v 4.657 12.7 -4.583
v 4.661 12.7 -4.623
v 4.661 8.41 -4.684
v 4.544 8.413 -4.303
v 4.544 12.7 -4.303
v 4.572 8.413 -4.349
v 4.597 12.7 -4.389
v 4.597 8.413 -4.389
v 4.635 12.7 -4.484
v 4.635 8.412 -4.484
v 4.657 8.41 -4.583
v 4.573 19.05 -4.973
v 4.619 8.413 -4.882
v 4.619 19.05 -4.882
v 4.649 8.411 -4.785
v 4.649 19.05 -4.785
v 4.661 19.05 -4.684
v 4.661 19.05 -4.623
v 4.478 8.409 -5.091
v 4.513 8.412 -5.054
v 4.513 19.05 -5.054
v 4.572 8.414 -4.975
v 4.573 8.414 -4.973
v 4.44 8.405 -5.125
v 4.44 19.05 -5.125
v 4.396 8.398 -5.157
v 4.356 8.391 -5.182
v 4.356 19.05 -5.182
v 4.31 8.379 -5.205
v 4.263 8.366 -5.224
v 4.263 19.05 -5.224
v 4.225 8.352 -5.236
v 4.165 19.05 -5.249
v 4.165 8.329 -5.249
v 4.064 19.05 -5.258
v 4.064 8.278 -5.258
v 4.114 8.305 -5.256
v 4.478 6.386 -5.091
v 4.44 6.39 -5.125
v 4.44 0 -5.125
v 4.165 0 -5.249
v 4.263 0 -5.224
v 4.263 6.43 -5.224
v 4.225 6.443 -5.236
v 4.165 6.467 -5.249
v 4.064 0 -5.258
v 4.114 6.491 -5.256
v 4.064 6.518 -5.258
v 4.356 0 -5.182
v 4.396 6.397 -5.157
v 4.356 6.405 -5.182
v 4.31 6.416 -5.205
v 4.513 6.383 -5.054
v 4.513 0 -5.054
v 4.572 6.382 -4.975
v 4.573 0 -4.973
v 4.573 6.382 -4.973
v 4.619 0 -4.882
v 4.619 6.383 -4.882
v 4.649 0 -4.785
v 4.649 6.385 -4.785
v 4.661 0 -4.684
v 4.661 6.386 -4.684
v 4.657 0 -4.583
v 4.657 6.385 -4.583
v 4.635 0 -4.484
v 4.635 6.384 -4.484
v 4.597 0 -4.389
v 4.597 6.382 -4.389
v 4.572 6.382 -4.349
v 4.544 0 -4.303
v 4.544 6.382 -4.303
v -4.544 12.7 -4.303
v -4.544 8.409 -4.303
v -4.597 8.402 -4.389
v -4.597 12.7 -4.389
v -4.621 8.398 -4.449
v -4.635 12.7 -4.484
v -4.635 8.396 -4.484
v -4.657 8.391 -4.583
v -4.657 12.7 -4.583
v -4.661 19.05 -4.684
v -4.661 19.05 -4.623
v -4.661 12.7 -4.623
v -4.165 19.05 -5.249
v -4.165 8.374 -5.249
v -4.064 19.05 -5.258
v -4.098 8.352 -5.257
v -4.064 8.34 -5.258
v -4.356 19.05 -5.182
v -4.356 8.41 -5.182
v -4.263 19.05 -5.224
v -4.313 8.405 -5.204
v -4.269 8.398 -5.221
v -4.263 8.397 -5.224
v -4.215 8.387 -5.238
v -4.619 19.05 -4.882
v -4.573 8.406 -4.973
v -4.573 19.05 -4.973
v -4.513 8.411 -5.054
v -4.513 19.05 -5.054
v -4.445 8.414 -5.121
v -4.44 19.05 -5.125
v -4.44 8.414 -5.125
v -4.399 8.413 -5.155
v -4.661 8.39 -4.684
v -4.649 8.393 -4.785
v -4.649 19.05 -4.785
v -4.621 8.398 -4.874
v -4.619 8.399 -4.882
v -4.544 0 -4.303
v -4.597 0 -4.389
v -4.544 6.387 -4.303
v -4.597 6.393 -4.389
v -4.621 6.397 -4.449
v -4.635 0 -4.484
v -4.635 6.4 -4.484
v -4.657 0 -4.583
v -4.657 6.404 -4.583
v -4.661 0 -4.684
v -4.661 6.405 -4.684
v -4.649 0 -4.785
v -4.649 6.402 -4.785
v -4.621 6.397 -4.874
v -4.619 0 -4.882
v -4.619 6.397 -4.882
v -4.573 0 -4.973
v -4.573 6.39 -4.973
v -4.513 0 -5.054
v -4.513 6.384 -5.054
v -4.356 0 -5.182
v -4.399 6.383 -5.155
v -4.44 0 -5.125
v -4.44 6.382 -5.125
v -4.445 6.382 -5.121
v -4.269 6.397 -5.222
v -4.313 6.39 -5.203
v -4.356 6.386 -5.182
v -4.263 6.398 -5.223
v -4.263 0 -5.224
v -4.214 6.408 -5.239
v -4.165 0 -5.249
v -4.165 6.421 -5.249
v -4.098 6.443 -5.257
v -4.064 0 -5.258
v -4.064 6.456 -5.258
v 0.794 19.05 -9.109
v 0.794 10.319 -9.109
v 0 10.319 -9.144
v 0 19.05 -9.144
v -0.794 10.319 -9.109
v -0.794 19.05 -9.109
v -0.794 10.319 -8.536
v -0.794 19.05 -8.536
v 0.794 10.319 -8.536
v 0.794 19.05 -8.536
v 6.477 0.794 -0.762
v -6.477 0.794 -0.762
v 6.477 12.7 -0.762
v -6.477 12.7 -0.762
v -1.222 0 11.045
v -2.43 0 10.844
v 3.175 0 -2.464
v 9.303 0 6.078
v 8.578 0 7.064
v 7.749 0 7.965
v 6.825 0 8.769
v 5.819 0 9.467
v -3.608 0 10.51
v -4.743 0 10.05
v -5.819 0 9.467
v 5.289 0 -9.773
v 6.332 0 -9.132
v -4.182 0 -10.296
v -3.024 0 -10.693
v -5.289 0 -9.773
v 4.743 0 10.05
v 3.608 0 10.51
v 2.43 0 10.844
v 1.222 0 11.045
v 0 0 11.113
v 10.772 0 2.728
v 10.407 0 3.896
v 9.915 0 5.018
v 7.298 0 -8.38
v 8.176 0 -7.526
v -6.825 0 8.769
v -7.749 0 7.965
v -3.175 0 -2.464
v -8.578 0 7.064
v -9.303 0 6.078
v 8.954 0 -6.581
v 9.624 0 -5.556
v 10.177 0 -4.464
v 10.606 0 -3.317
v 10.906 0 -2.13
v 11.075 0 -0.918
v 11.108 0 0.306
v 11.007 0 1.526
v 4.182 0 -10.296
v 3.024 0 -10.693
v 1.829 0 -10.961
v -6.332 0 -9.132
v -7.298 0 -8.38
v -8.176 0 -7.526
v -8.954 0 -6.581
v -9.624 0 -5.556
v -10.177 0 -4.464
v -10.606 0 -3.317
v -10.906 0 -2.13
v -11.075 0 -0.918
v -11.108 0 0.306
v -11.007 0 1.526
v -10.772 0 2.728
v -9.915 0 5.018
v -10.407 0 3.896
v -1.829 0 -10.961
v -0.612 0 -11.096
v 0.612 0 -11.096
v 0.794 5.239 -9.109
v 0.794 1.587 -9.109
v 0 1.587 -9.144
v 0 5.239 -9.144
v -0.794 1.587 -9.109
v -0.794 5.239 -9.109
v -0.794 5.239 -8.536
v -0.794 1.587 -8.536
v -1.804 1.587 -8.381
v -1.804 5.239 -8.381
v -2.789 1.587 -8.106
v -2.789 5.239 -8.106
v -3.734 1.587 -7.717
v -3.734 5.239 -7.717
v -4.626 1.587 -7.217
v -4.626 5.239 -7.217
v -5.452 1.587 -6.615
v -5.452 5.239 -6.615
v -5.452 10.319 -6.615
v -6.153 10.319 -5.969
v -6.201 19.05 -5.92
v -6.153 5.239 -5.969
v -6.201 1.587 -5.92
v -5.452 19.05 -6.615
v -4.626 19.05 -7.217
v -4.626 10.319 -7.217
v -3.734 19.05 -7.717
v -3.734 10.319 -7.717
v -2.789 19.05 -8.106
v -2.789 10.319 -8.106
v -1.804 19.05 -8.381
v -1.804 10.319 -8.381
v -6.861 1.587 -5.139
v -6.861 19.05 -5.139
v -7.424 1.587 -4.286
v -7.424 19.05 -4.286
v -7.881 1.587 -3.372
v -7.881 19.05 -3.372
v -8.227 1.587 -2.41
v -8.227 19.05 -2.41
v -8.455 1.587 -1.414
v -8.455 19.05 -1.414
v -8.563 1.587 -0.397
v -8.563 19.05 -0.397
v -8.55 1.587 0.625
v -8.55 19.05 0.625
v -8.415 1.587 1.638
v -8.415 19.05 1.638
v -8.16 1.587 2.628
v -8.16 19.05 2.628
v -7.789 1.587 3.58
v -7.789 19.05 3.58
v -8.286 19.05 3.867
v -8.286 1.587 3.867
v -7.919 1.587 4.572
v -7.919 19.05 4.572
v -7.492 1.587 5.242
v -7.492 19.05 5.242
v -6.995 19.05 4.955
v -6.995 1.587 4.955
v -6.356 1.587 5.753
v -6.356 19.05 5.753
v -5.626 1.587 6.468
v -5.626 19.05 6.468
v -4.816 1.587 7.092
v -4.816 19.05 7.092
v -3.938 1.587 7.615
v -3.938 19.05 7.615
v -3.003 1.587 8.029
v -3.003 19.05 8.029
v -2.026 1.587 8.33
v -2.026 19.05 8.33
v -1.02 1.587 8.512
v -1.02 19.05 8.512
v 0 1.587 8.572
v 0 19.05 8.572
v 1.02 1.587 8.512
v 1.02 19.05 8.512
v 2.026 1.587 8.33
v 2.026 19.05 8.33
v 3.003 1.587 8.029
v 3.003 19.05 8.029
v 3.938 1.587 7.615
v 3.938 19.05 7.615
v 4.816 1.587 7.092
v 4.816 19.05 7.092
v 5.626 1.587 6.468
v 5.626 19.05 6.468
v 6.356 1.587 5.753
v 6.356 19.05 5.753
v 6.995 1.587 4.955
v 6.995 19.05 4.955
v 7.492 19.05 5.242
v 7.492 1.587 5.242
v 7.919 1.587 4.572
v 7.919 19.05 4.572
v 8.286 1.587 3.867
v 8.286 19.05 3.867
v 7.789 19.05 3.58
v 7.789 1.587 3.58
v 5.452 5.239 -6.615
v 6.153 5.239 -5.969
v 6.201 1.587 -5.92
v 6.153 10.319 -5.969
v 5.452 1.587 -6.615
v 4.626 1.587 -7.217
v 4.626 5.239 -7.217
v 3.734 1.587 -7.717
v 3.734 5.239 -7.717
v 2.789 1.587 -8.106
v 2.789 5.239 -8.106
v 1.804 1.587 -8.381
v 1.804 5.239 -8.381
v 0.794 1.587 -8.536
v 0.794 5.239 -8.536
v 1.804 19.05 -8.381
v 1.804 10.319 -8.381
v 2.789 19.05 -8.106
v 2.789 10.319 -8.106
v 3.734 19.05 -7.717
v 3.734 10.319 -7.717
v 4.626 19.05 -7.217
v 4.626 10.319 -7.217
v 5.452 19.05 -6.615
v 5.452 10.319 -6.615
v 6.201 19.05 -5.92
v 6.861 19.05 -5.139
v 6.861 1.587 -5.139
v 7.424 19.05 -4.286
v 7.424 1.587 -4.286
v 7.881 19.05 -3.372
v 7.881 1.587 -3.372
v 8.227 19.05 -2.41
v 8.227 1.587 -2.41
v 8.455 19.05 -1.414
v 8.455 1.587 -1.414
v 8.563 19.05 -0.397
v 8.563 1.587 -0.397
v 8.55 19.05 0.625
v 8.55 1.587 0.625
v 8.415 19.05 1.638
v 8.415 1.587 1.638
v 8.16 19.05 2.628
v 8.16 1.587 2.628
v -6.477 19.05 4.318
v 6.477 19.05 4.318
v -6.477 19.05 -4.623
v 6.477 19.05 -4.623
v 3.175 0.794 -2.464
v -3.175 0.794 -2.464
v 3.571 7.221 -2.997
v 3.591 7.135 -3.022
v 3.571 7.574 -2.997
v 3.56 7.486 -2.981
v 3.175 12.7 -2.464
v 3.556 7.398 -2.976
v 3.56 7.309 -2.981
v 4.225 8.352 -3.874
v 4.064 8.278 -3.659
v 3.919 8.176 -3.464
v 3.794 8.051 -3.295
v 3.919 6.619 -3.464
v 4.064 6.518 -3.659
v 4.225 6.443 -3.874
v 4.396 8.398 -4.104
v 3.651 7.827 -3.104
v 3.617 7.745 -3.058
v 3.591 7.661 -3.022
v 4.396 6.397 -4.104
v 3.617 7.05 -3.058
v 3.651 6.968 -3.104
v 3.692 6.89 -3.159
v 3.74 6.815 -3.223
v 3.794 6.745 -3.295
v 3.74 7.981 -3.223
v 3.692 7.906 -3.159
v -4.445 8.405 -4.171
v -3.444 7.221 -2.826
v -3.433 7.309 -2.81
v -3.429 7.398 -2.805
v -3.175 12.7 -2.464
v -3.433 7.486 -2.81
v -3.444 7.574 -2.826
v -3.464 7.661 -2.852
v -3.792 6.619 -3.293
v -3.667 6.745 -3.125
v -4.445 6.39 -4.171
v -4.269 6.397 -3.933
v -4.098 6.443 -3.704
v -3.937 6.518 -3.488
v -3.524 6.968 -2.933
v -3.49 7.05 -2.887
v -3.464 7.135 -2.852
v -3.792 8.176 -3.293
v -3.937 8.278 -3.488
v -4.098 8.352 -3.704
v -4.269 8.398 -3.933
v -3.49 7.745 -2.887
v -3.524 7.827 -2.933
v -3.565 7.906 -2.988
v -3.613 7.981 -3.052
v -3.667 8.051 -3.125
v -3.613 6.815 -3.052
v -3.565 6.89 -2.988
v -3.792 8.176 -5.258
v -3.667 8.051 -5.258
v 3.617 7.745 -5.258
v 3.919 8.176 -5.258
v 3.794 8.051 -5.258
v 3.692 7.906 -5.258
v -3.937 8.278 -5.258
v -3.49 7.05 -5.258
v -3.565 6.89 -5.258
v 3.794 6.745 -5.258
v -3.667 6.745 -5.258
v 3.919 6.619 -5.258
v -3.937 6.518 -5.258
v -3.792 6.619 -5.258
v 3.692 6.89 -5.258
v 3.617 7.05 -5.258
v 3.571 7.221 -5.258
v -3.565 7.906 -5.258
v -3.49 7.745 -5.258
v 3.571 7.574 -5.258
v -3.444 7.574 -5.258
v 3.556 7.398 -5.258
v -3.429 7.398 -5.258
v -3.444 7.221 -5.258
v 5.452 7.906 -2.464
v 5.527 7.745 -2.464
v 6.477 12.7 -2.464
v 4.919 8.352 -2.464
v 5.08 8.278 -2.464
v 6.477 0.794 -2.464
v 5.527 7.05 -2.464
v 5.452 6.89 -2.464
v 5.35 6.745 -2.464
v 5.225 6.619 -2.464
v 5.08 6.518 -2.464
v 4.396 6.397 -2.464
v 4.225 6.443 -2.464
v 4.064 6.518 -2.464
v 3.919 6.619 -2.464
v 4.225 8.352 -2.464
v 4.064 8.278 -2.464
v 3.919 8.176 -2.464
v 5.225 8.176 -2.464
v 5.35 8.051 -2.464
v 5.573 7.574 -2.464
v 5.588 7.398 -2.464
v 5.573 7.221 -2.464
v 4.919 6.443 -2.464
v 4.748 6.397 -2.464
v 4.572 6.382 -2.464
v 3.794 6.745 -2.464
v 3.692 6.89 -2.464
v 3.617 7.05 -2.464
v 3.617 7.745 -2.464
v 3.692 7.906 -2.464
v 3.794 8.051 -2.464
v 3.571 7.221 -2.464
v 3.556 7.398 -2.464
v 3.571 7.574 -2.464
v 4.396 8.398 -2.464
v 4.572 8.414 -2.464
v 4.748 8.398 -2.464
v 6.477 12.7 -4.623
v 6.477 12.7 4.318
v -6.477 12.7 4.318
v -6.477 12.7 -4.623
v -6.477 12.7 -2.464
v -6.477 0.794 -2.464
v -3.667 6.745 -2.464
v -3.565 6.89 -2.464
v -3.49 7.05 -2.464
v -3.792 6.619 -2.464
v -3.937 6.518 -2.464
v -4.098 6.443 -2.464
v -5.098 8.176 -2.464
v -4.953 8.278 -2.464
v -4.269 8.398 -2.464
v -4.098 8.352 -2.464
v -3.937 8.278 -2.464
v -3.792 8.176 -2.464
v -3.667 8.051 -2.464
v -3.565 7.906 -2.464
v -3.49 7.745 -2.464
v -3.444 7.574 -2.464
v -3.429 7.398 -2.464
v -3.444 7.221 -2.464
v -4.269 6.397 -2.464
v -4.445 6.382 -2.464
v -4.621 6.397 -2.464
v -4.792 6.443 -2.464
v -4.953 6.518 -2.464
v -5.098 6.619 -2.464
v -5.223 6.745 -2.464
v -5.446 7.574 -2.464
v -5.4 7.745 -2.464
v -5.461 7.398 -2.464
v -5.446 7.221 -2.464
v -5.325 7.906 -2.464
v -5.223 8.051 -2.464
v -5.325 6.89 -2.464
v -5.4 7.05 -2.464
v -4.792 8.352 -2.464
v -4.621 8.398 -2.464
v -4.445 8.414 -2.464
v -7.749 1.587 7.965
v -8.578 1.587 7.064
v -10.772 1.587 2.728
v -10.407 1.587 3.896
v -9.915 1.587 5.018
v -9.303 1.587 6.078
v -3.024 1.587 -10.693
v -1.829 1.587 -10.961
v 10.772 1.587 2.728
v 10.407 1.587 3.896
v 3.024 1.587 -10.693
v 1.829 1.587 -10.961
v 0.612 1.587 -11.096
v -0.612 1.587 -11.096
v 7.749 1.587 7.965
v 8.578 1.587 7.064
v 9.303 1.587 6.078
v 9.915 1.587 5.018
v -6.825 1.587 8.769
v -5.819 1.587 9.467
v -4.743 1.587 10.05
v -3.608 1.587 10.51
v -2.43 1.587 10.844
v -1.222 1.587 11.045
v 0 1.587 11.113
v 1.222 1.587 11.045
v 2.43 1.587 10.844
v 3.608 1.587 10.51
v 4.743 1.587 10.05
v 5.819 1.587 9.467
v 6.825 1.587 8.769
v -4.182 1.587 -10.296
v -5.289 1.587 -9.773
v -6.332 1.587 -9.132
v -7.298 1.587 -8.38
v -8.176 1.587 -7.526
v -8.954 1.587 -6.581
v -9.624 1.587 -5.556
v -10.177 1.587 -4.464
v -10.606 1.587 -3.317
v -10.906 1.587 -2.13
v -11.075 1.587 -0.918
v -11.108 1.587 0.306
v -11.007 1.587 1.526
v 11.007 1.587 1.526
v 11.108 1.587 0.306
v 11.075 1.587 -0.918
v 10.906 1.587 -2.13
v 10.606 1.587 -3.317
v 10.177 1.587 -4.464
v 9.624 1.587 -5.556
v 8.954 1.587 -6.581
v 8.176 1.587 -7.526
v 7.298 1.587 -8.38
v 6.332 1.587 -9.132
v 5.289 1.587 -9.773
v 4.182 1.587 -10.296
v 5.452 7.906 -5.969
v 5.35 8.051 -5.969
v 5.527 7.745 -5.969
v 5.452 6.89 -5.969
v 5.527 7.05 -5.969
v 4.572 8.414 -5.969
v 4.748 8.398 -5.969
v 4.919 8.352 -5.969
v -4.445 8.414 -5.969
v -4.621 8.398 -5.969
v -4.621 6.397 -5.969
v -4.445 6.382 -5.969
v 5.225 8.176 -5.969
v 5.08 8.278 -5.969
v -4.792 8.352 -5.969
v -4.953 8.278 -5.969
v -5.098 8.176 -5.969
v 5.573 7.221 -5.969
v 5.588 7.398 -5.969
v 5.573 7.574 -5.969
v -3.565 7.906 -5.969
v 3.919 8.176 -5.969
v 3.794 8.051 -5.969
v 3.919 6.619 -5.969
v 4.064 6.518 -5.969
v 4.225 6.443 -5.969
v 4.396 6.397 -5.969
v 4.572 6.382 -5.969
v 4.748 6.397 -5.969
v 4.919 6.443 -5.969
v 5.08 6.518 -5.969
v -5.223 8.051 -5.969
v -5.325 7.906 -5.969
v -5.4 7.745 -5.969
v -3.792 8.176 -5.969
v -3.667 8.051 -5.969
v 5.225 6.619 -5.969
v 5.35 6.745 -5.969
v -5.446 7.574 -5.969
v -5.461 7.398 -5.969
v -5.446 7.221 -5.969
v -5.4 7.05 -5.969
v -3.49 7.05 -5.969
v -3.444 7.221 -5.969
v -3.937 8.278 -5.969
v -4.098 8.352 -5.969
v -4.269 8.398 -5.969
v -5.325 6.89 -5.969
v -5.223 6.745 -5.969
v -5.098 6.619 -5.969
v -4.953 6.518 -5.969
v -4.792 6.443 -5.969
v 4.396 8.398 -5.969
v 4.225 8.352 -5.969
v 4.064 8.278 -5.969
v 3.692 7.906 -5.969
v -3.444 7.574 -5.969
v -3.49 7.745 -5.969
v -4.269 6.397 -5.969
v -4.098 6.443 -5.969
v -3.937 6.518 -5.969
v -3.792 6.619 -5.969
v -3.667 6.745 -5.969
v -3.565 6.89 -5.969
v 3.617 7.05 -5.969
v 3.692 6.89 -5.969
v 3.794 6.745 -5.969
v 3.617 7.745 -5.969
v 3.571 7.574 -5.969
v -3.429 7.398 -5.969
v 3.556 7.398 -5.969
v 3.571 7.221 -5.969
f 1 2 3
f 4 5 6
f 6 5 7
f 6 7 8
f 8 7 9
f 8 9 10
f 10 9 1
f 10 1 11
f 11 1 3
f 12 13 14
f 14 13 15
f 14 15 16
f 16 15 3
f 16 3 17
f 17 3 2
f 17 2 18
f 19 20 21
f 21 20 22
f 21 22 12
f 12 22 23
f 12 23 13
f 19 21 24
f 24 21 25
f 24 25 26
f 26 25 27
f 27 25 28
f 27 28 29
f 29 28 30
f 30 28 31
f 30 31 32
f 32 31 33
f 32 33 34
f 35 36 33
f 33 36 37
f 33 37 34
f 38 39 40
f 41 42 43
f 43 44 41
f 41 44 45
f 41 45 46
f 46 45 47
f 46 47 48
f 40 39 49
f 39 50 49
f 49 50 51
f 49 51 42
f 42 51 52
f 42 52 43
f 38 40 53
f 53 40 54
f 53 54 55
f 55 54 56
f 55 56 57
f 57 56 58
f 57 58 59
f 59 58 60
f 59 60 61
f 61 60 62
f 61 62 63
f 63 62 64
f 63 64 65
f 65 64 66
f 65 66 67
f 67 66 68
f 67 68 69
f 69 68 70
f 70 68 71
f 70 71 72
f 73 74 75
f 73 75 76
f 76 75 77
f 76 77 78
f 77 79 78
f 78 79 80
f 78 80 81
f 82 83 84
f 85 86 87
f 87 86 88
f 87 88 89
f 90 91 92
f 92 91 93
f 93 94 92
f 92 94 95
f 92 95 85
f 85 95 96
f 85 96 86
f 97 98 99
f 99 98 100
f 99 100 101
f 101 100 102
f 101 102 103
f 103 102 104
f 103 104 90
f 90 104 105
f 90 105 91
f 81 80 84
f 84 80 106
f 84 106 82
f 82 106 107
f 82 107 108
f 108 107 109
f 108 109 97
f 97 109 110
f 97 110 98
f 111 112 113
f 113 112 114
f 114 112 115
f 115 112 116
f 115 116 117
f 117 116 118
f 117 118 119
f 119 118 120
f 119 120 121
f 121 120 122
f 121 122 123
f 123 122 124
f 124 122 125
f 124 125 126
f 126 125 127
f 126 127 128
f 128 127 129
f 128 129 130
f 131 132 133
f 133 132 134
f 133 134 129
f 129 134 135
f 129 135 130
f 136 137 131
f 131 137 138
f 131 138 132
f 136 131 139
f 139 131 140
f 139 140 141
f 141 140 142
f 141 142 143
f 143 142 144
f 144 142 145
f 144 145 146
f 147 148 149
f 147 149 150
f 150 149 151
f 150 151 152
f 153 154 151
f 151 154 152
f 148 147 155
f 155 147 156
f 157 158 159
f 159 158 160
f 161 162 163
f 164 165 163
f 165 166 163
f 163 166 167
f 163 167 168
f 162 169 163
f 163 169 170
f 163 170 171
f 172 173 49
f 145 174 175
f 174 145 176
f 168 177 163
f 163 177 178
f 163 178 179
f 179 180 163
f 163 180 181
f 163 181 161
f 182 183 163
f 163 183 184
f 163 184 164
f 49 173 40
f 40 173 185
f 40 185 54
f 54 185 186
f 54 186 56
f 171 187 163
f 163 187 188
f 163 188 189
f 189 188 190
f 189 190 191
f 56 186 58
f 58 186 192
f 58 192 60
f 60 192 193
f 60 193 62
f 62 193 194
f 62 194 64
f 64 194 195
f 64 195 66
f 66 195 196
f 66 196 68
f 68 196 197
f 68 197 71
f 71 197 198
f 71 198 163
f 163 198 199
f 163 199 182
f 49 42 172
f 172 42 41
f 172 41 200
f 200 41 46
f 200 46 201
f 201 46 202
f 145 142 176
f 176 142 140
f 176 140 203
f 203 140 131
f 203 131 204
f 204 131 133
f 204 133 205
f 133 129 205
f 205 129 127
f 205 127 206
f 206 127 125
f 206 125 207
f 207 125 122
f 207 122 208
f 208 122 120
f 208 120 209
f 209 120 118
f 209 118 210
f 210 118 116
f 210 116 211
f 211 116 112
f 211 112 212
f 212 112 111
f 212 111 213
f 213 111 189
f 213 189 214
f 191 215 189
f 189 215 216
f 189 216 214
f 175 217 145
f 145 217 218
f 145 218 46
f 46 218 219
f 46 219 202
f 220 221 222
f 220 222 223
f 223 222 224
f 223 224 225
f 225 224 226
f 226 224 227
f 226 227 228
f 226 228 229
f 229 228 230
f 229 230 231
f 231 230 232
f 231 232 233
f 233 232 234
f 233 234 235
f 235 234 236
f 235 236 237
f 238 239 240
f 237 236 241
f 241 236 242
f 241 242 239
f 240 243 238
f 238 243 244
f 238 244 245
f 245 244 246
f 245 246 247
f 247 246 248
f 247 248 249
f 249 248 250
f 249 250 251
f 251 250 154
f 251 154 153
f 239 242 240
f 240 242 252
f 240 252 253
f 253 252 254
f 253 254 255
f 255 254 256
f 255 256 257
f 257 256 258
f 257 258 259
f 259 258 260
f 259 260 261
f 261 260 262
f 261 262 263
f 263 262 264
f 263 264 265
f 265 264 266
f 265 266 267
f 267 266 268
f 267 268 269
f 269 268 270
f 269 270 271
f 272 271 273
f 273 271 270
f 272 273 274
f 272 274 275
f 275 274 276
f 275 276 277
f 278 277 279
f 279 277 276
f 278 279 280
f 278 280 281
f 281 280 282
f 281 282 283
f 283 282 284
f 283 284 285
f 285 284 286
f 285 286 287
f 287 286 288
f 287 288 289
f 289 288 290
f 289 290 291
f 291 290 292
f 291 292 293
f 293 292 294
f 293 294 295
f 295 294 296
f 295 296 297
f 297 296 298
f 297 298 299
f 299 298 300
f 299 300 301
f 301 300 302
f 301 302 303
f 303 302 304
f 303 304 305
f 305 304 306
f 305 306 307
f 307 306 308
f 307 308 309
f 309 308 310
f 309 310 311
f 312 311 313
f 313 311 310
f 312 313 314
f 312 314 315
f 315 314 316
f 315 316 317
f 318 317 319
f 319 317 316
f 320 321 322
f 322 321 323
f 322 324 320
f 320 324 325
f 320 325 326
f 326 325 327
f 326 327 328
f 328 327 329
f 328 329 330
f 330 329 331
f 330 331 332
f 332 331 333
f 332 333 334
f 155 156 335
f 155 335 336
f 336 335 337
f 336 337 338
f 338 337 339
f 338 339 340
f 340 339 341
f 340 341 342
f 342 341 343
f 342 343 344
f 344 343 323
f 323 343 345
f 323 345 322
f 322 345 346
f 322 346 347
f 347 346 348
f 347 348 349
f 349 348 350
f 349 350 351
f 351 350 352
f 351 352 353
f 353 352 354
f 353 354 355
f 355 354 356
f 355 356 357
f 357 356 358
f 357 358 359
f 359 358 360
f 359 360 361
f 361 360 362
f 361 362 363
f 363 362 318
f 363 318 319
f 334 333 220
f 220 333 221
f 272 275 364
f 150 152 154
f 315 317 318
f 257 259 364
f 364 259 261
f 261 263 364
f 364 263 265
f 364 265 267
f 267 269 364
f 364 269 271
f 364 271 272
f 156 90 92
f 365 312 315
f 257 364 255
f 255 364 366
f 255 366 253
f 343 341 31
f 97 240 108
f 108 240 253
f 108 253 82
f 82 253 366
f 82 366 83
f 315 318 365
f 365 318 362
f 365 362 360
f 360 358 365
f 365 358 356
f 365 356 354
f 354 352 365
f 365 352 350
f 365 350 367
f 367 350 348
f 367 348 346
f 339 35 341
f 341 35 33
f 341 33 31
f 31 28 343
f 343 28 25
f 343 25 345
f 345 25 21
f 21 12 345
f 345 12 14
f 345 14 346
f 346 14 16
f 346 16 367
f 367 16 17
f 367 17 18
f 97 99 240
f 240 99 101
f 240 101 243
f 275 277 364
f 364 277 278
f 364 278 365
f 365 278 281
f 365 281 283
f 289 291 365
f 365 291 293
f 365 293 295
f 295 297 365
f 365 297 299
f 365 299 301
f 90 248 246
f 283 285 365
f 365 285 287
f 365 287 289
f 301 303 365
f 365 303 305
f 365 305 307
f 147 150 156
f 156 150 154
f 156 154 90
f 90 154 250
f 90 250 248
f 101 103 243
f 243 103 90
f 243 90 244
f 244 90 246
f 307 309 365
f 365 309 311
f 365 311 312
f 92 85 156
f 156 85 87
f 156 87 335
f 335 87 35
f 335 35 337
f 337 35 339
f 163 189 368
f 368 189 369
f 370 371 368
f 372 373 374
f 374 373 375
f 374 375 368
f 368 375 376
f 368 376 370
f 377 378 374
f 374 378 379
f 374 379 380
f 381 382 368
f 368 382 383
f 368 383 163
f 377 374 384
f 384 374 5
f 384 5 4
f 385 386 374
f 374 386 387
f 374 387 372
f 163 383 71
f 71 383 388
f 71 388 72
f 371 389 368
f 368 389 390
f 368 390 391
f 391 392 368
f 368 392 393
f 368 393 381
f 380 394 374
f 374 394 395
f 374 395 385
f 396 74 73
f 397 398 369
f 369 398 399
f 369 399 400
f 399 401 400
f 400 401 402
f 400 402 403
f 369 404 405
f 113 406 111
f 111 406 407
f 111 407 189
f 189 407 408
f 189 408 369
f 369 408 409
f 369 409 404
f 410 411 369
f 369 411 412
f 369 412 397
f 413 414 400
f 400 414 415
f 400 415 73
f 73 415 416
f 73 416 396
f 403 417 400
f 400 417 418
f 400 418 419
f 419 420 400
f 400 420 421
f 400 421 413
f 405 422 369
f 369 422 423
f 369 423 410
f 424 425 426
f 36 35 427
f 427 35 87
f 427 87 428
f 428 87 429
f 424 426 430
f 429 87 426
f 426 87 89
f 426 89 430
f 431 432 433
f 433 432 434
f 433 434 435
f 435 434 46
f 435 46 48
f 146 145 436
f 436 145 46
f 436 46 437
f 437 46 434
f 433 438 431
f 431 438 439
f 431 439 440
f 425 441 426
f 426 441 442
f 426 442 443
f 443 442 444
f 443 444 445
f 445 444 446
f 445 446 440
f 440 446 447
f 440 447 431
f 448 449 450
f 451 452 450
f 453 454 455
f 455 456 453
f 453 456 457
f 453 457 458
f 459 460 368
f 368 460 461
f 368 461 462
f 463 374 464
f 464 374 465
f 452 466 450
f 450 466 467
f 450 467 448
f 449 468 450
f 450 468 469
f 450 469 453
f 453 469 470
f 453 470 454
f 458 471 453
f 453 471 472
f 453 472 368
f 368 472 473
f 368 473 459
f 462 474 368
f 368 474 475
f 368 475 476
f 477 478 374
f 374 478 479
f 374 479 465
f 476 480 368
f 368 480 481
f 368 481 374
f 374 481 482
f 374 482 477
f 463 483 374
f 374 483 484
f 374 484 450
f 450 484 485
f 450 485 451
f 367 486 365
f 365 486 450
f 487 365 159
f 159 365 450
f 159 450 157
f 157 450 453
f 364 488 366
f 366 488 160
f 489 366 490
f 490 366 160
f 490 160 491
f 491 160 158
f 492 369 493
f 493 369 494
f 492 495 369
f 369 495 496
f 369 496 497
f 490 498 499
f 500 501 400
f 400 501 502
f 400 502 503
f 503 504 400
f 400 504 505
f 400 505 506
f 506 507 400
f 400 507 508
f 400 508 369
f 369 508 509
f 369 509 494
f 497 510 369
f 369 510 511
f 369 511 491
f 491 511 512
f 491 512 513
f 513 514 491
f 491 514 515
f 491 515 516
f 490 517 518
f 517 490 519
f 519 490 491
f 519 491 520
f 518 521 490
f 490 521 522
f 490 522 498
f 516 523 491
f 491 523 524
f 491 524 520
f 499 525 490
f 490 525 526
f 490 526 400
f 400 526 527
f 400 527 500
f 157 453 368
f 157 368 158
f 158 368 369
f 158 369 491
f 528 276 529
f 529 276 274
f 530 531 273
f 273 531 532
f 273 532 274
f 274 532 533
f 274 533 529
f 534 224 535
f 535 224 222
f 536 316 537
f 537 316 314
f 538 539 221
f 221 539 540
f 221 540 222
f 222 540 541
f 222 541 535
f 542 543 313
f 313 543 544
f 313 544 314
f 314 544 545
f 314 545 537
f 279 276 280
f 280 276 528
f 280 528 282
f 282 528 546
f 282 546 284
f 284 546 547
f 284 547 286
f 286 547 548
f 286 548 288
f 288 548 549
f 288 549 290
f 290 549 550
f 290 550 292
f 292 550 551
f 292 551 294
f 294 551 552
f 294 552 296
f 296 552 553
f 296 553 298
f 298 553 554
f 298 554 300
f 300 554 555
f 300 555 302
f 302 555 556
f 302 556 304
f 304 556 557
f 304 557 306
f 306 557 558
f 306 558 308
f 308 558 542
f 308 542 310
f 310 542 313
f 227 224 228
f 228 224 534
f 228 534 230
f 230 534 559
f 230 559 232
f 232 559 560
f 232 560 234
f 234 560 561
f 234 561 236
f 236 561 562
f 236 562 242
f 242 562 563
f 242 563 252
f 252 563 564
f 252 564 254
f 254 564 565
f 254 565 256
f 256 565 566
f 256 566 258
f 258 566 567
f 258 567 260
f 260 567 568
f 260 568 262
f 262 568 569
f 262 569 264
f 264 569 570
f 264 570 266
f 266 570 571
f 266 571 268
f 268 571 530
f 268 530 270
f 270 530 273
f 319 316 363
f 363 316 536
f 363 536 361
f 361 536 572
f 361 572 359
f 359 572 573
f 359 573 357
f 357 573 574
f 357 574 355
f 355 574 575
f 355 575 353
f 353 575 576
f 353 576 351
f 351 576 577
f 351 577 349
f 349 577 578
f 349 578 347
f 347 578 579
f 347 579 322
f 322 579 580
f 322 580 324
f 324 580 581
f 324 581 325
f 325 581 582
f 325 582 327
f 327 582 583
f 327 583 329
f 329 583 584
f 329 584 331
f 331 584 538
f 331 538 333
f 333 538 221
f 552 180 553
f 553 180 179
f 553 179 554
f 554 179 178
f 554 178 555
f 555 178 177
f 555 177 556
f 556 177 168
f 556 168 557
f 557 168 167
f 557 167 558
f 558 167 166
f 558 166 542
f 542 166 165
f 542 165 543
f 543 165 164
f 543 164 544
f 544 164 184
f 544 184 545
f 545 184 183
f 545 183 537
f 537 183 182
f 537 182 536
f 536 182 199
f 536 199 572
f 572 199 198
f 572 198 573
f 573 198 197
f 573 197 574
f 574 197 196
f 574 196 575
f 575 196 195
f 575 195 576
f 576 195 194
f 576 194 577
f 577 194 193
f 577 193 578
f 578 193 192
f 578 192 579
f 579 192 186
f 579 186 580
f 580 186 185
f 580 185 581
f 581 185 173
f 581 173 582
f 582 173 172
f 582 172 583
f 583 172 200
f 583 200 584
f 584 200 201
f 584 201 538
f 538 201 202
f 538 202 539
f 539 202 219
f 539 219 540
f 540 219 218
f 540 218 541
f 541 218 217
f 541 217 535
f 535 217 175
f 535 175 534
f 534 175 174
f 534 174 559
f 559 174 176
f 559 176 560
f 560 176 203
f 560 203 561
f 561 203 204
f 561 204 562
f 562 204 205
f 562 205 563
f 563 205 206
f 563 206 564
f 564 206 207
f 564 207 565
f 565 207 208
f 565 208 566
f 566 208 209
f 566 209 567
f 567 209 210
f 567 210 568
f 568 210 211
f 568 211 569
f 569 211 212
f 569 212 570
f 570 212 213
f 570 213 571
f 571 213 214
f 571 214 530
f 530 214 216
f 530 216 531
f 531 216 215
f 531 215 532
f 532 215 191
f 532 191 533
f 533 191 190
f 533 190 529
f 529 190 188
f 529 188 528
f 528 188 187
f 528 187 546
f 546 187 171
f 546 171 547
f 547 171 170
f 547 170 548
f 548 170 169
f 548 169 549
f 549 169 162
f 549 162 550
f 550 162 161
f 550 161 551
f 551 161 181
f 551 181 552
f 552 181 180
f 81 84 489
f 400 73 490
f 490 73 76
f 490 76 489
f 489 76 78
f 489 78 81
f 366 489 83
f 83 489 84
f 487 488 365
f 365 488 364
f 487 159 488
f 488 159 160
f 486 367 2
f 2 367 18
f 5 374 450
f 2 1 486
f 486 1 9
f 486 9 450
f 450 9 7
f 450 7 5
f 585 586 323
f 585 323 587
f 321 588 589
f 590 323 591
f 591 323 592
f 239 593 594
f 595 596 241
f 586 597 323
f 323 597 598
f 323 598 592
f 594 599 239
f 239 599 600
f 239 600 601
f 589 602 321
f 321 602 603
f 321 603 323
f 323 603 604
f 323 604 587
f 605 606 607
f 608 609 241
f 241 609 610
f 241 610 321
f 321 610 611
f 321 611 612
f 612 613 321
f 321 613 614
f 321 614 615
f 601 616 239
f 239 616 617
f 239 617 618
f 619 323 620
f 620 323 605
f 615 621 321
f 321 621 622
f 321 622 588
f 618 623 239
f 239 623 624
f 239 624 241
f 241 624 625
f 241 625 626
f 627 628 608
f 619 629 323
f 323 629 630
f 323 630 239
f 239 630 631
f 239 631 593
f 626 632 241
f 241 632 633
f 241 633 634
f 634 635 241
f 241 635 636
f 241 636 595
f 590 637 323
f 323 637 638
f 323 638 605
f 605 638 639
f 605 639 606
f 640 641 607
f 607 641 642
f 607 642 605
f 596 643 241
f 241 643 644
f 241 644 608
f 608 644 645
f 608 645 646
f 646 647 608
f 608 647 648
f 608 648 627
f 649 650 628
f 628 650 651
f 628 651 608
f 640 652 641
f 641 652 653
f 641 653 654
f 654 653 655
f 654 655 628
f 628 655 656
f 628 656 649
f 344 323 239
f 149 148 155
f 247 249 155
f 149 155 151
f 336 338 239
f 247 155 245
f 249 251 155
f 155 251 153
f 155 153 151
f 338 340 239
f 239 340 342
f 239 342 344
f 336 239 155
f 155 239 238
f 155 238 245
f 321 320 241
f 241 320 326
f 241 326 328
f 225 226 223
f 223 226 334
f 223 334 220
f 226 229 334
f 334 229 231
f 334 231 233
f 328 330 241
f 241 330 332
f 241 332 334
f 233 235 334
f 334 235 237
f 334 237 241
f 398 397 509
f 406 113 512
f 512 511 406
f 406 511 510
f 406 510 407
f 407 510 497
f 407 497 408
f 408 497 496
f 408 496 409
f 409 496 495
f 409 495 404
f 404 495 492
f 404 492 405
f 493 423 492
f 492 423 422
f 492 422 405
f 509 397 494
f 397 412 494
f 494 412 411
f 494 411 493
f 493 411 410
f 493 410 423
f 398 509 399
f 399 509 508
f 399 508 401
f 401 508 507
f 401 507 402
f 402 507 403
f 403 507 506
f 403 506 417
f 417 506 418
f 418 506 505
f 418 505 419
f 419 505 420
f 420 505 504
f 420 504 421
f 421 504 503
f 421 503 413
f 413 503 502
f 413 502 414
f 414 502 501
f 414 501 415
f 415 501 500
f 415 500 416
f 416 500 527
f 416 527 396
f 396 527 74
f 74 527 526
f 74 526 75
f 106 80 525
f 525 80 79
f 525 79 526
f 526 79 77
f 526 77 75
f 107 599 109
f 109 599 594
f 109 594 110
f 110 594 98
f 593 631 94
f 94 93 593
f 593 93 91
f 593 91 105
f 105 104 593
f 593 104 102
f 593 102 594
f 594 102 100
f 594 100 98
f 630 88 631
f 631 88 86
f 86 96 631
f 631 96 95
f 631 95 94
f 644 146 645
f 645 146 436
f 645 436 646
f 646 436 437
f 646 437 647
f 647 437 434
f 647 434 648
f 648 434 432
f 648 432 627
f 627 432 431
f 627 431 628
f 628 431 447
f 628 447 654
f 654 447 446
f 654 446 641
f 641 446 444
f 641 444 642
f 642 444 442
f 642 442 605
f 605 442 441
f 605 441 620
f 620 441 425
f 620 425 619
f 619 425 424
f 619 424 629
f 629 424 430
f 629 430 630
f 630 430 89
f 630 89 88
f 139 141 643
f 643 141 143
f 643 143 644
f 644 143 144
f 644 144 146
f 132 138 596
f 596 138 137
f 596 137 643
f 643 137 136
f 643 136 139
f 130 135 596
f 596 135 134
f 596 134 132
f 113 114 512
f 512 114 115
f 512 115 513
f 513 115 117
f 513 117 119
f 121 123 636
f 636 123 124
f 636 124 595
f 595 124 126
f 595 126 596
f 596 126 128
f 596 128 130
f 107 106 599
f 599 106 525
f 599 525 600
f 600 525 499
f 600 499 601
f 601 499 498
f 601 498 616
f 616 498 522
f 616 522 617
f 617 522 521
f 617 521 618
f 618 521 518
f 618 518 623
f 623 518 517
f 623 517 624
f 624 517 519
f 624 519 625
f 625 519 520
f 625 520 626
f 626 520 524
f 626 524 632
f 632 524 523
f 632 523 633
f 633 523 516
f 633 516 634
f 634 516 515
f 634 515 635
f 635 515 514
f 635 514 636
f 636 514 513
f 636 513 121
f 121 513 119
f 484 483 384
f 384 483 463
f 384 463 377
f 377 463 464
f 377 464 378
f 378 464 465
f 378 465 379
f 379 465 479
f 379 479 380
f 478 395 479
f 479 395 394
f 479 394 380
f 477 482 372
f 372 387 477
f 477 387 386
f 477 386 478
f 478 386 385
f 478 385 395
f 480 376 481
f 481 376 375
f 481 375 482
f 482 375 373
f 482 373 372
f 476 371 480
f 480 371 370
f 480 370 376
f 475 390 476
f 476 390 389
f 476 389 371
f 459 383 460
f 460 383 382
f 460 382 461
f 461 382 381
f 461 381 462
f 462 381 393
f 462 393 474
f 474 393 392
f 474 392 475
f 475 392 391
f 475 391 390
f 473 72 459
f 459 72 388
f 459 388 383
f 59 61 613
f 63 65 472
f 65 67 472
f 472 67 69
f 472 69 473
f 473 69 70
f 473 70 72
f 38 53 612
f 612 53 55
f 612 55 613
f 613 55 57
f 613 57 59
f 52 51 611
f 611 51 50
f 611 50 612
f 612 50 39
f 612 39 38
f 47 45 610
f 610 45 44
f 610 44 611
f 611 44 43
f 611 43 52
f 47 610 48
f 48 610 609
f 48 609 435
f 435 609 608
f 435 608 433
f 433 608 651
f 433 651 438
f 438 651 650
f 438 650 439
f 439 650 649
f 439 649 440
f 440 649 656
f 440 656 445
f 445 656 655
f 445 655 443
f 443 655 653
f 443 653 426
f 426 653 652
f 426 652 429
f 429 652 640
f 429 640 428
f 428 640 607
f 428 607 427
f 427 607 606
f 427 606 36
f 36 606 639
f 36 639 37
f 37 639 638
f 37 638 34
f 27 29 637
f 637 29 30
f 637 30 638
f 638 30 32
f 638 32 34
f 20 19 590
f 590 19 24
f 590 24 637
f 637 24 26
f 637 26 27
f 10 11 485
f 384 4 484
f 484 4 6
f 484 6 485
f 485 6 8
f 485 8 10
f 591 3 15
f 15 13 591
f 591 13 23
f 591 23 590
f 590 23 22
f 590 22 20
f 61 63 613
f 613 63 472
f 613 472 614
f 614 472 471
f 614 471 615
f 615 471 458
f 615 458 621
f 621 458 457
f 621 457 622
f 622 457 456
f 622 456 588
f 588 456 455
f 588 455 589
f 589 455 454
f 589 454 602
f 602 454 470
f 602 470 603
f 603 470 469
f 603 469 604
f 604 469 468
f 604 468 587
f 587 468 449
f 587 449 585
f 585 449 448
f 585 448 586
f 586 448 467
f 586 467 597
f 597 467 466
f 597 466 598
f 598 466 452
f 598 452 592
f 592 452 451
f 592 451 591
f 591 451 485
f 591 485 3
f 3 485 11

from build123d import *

# Parameters (mm, degrees)
BOSS_EXTRUDE1_DEPTH     = 19.05
CUT_EXTRUDE1_DEPTH      = 23.803574111
CUT_EXTRUDE2_DEPTH      = 18.25625
SKETCH6_W               = 0.608326788
SKETCH6_H               = 1.5875
SKETCH8_W               = 2.576826788
SKETCH8_H               = 1.5875
SKETCH9_W               = 12.954
SKETCH9_H               = 5.08
SKETCH9_H_2             = 2.159
CUT_EXTRUDE3_DEPTH      = 6.35
CUT_EXTRUDE5_DEPTH      = 25.695704333
CUT_EXTRUDE5_DEPTH_BACK = 25.695704333
SKETCH11_W              = 3.175
SKETCH11_H              = 5.08
SKETCH10_R              = 1.016
CUT_EXTRUDE6_DEPTH      = 26.047832371


with BuildPart() as part:
    # Sketch1 → Boss-Extrude1 (new body)
    with BuildSketch(Plane(origin=(0, 0, 0), x_dir=(1, 0, 0), z_dir=(0, 1, 0))):
        with BuildLine():
            Line((-0.79375, 9.109483901), (-0.79375, 8.535673212))
            ThreePointArc((-0.79375, 8.535673212), (-7.424002774, 4.28625), (-7.78898484, -3.580428942))
            Line((-7.78898484, -3.580428942), (-8.285919473, -3.867334286))
            ThreePointArc((-8.285919473, -3.867334286), (-7.918936292, -4.572), (-7.492169473, -5.242149615))
            Line((-7.492169473, -5.242149615), (-6.99523484, -4.95524427))
            ThreePointArc((-6.99523484, -4.95524427), (0, -8.5725), (6.99523484, -4.95524427))
            Line((6.99523484, -4.95524427), (7.492169473, -5.242149615))
            ThreePointArc((7.492169473, -5.242149615), (7.918936292, -4.572), (8.285919473, -3.867334286))
            Line((8.285919473, -3.867334286), (7.78898484, -3.580428942))
            ThreePointArc((7.78898484, -3.580428942), (7.424002774, 4.28625), (0.79375, 8.535673212))
            Line((0.79375, 8.535673212), (0.79375, 9.109483901))
            ThreePointArc((0.79375, 9.109483901), (0, 9.144), (-0.79375, 9.109483901))
        make_face()
    extrude(amount=BOSS_EXTRUDE1_DEPTH)

    # Sketch2 → Cut-Extrude1 (cut, through all)
    with BuildSketch(Plane(origin=(0, 19.05, 0), x_dir=(1, 0, 0), z_dir=(0, 1, 0))):
        with BuildLine():
            Line((-4.543615348, 4.303093955), (-3.175, 2.4638))
            Line((-3.175, 2.4638), (3.175, 2.4638))
            Line((3.175, 2.4638), (4.543615348, 4.303093955))
            ThreePointArc((4.543615348, 4.303093955), (4.598203733, 4.928342625), (4.064, 5.2578))
            Line((4.064, 5.2578), (-4.064, 5.2578))
            ThreePointArc((-4.064, 5.2578), (-4.598203733, 4.928342625), (-4.543615348, 4.303093955))
        make_face()
    extrude(amount=-CUT_EXTRUDE1_DEPTH, mode=Mode.SUBTRACT)

    # Sketch2<4> → Cut-Extrude2 (cut)
    with BuildSketch(Plane(origin=(0, 19.05, 0), x_dir=(1, 0, 0), z_dir=(0, 1, 0))):
        Polygon((3.175, 2.4638), (-3.175, 2.4638), (-6.477, 2.4638), (-6.477, 0.762), (6.477, 0.762), (6.477, 2.4638), align=None)
    extrude(amount=-CUT_EXTRUDE2_DEPTH, mode=Mode.SUBTRACT)

    # Sketch6 → Cut-Revolve2 (revolve, cut)
    with BuildSketch(Plane(origin=(0, 0, 0), x_dir=(0, 0, -1), z_dir=(1, 0, 0))):
        with Locations((8.839836606, 0.79375)):
            Rectangle(SKETCH6_W, SKETCH6_H)
    revolve(axis=Axis((0, 19.730213777, 0), (0, -1, 0)), mode=Mode.SUBTRACT)

    # Sketch8 → Revolve2 (revolve)
    with BuildSketch(Plane(origin=(0, 0, 0), x_dir=(0, 0, -1), z_dir=(1, 0, 0))):
        with Locations((9.824086606, 0.79375)):
            Rectangle(SKETCH8_W, SKETCH8_H)
    revolve(axis=Axis((0, 4.48386458, 0), (0, -1, 0)))

    # Sketch9 → Cut-Extrude3 (cut)
    with BuildSketch(Plane(origin=(0, 19.05, 0), x_dir=(1, 0, 0), z_dir=(0, 1, 0))):
        with Locations((0, -1.778)):
            Rectangle(SKETCH9_W, SKETCH9_H)
        with Locations((0, 3.5433)):
            Rectangle(SKETCH9_W, SKETCH9_H_2)
    extrude(amount=-CUT_EXTRUDE3_DEPTH, mode=Mode.SUBTRACT)

    # Sketch11 → Cut-Extrude5 (cut, two sides: drawn at the far end of the back side and taken through both)
    with BuildSketch(Plane(origin=(0, 0, 0), x_dir=(0, 0, -1), z_dir=(1, 0, 0)).offset(-CUT_EXTRUDE5_DEPTH_BACK)):
        with Locations((7.5565, 7.77875)):
            Rectangle(SKETCH11_W, SKETCH11_H)
    extrude(amount=CUT_EXTRUDE5_DEPTH + CUT_EXTRUDE5_DEPTH_BACK, mode=Mode.SUBTRACT)

    # Sketch10 → Cut-Extrude6 (cut, through all)
    with BuildSketch(Plane(origin=(0, 0, -0.762), x_dir=(-1, 0, 0), z_dir=(0, 0, -1))):
        with Locations((-4.572, 7.39775)):
            Circle(SKETCH10_R)
        with Locations((4.445, 7.39775)):
            Circle(SKETCH10_R)
    extrude(amount=CUT_EXTRUDE6_DEPTH, mode=Mode.SUBTRACT)


solid = part.part
